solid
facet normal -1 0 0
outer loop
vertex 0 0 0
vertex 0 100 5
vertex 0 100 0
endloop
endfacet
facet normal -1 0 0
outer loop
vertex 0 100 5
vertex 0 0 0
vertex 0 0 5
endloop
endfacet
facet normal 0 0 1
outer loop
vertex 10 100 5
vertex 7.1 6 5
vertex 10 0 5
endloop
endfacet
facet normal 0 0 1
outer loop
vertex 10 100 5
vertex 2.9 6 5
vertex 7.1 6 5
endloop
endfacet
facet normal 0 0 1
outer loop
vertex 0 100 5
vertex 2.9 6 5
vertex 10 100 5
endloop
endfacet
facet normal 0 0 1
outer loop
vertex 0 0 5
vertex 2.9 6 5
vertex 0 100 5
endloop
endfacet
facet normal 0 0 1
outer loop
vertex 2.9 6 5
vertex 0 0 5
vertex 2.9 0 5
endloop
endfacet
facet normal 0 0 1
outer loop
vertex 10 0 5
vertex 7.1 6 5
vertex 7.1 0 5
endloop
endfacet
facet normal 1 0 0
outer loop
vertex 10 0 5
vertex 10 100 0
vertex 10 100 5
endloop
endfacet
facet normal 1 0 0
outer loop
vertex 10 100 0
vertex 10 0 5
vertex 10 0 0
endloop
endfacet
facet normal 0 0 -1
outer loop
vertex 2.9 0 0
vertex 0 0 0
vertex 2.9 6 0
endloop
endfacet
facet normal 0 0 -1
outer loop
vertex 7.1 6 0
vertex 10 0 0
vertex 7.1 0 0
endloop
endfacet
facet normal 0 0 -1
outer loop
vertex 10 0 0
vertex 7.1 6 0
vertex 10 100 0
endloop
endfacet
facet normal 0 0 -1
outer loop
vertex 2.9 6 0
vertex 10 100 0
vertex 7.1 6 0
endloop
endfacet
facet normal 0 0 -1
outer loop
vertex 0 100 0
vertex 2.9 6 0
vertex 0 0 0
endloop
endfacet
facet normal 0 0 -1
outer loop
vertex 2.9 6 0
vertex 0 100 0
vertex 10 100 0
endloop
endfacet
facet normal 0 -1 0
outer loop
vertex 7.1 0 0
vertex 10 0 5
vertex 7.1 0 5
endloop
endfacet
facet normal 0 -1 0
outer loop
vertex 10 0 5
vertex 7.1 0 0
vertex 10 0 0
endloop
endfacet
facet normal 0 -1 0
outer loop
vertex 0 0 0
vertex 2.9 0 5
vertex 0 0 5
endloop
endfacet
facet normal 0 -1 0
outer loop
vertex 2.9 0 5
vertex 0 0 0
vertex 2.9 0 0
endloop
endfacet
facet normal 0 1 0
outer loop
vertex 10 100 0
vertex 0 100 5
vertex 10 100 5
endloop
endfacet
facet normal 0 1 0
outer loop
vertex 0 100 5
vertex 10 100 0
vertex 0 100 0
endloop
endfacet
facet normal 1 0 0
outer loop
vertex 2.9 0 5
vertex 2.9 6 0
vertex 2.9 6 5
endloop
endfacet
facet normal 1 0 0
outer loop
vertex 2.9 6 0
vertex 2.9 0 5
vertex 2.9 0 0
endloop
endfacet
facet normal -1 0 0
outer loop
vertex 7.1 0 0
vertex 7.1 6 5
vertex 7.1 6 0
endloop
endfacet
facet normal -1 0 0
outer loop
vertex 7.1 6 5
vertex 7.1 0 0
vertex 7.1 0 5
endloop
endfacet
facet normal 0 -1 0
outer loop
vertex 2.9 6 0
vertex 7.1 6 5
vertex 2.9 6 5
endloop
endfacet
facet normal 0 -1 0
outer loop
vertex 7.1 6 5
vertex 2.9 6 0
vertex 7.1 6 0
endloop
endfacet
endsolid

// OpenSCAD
//needle wrench

difference()  {
    cube([10, 100, 5]);
    translate([2.9, -1, -1]) cube([4.2, 7, 7]);
}
